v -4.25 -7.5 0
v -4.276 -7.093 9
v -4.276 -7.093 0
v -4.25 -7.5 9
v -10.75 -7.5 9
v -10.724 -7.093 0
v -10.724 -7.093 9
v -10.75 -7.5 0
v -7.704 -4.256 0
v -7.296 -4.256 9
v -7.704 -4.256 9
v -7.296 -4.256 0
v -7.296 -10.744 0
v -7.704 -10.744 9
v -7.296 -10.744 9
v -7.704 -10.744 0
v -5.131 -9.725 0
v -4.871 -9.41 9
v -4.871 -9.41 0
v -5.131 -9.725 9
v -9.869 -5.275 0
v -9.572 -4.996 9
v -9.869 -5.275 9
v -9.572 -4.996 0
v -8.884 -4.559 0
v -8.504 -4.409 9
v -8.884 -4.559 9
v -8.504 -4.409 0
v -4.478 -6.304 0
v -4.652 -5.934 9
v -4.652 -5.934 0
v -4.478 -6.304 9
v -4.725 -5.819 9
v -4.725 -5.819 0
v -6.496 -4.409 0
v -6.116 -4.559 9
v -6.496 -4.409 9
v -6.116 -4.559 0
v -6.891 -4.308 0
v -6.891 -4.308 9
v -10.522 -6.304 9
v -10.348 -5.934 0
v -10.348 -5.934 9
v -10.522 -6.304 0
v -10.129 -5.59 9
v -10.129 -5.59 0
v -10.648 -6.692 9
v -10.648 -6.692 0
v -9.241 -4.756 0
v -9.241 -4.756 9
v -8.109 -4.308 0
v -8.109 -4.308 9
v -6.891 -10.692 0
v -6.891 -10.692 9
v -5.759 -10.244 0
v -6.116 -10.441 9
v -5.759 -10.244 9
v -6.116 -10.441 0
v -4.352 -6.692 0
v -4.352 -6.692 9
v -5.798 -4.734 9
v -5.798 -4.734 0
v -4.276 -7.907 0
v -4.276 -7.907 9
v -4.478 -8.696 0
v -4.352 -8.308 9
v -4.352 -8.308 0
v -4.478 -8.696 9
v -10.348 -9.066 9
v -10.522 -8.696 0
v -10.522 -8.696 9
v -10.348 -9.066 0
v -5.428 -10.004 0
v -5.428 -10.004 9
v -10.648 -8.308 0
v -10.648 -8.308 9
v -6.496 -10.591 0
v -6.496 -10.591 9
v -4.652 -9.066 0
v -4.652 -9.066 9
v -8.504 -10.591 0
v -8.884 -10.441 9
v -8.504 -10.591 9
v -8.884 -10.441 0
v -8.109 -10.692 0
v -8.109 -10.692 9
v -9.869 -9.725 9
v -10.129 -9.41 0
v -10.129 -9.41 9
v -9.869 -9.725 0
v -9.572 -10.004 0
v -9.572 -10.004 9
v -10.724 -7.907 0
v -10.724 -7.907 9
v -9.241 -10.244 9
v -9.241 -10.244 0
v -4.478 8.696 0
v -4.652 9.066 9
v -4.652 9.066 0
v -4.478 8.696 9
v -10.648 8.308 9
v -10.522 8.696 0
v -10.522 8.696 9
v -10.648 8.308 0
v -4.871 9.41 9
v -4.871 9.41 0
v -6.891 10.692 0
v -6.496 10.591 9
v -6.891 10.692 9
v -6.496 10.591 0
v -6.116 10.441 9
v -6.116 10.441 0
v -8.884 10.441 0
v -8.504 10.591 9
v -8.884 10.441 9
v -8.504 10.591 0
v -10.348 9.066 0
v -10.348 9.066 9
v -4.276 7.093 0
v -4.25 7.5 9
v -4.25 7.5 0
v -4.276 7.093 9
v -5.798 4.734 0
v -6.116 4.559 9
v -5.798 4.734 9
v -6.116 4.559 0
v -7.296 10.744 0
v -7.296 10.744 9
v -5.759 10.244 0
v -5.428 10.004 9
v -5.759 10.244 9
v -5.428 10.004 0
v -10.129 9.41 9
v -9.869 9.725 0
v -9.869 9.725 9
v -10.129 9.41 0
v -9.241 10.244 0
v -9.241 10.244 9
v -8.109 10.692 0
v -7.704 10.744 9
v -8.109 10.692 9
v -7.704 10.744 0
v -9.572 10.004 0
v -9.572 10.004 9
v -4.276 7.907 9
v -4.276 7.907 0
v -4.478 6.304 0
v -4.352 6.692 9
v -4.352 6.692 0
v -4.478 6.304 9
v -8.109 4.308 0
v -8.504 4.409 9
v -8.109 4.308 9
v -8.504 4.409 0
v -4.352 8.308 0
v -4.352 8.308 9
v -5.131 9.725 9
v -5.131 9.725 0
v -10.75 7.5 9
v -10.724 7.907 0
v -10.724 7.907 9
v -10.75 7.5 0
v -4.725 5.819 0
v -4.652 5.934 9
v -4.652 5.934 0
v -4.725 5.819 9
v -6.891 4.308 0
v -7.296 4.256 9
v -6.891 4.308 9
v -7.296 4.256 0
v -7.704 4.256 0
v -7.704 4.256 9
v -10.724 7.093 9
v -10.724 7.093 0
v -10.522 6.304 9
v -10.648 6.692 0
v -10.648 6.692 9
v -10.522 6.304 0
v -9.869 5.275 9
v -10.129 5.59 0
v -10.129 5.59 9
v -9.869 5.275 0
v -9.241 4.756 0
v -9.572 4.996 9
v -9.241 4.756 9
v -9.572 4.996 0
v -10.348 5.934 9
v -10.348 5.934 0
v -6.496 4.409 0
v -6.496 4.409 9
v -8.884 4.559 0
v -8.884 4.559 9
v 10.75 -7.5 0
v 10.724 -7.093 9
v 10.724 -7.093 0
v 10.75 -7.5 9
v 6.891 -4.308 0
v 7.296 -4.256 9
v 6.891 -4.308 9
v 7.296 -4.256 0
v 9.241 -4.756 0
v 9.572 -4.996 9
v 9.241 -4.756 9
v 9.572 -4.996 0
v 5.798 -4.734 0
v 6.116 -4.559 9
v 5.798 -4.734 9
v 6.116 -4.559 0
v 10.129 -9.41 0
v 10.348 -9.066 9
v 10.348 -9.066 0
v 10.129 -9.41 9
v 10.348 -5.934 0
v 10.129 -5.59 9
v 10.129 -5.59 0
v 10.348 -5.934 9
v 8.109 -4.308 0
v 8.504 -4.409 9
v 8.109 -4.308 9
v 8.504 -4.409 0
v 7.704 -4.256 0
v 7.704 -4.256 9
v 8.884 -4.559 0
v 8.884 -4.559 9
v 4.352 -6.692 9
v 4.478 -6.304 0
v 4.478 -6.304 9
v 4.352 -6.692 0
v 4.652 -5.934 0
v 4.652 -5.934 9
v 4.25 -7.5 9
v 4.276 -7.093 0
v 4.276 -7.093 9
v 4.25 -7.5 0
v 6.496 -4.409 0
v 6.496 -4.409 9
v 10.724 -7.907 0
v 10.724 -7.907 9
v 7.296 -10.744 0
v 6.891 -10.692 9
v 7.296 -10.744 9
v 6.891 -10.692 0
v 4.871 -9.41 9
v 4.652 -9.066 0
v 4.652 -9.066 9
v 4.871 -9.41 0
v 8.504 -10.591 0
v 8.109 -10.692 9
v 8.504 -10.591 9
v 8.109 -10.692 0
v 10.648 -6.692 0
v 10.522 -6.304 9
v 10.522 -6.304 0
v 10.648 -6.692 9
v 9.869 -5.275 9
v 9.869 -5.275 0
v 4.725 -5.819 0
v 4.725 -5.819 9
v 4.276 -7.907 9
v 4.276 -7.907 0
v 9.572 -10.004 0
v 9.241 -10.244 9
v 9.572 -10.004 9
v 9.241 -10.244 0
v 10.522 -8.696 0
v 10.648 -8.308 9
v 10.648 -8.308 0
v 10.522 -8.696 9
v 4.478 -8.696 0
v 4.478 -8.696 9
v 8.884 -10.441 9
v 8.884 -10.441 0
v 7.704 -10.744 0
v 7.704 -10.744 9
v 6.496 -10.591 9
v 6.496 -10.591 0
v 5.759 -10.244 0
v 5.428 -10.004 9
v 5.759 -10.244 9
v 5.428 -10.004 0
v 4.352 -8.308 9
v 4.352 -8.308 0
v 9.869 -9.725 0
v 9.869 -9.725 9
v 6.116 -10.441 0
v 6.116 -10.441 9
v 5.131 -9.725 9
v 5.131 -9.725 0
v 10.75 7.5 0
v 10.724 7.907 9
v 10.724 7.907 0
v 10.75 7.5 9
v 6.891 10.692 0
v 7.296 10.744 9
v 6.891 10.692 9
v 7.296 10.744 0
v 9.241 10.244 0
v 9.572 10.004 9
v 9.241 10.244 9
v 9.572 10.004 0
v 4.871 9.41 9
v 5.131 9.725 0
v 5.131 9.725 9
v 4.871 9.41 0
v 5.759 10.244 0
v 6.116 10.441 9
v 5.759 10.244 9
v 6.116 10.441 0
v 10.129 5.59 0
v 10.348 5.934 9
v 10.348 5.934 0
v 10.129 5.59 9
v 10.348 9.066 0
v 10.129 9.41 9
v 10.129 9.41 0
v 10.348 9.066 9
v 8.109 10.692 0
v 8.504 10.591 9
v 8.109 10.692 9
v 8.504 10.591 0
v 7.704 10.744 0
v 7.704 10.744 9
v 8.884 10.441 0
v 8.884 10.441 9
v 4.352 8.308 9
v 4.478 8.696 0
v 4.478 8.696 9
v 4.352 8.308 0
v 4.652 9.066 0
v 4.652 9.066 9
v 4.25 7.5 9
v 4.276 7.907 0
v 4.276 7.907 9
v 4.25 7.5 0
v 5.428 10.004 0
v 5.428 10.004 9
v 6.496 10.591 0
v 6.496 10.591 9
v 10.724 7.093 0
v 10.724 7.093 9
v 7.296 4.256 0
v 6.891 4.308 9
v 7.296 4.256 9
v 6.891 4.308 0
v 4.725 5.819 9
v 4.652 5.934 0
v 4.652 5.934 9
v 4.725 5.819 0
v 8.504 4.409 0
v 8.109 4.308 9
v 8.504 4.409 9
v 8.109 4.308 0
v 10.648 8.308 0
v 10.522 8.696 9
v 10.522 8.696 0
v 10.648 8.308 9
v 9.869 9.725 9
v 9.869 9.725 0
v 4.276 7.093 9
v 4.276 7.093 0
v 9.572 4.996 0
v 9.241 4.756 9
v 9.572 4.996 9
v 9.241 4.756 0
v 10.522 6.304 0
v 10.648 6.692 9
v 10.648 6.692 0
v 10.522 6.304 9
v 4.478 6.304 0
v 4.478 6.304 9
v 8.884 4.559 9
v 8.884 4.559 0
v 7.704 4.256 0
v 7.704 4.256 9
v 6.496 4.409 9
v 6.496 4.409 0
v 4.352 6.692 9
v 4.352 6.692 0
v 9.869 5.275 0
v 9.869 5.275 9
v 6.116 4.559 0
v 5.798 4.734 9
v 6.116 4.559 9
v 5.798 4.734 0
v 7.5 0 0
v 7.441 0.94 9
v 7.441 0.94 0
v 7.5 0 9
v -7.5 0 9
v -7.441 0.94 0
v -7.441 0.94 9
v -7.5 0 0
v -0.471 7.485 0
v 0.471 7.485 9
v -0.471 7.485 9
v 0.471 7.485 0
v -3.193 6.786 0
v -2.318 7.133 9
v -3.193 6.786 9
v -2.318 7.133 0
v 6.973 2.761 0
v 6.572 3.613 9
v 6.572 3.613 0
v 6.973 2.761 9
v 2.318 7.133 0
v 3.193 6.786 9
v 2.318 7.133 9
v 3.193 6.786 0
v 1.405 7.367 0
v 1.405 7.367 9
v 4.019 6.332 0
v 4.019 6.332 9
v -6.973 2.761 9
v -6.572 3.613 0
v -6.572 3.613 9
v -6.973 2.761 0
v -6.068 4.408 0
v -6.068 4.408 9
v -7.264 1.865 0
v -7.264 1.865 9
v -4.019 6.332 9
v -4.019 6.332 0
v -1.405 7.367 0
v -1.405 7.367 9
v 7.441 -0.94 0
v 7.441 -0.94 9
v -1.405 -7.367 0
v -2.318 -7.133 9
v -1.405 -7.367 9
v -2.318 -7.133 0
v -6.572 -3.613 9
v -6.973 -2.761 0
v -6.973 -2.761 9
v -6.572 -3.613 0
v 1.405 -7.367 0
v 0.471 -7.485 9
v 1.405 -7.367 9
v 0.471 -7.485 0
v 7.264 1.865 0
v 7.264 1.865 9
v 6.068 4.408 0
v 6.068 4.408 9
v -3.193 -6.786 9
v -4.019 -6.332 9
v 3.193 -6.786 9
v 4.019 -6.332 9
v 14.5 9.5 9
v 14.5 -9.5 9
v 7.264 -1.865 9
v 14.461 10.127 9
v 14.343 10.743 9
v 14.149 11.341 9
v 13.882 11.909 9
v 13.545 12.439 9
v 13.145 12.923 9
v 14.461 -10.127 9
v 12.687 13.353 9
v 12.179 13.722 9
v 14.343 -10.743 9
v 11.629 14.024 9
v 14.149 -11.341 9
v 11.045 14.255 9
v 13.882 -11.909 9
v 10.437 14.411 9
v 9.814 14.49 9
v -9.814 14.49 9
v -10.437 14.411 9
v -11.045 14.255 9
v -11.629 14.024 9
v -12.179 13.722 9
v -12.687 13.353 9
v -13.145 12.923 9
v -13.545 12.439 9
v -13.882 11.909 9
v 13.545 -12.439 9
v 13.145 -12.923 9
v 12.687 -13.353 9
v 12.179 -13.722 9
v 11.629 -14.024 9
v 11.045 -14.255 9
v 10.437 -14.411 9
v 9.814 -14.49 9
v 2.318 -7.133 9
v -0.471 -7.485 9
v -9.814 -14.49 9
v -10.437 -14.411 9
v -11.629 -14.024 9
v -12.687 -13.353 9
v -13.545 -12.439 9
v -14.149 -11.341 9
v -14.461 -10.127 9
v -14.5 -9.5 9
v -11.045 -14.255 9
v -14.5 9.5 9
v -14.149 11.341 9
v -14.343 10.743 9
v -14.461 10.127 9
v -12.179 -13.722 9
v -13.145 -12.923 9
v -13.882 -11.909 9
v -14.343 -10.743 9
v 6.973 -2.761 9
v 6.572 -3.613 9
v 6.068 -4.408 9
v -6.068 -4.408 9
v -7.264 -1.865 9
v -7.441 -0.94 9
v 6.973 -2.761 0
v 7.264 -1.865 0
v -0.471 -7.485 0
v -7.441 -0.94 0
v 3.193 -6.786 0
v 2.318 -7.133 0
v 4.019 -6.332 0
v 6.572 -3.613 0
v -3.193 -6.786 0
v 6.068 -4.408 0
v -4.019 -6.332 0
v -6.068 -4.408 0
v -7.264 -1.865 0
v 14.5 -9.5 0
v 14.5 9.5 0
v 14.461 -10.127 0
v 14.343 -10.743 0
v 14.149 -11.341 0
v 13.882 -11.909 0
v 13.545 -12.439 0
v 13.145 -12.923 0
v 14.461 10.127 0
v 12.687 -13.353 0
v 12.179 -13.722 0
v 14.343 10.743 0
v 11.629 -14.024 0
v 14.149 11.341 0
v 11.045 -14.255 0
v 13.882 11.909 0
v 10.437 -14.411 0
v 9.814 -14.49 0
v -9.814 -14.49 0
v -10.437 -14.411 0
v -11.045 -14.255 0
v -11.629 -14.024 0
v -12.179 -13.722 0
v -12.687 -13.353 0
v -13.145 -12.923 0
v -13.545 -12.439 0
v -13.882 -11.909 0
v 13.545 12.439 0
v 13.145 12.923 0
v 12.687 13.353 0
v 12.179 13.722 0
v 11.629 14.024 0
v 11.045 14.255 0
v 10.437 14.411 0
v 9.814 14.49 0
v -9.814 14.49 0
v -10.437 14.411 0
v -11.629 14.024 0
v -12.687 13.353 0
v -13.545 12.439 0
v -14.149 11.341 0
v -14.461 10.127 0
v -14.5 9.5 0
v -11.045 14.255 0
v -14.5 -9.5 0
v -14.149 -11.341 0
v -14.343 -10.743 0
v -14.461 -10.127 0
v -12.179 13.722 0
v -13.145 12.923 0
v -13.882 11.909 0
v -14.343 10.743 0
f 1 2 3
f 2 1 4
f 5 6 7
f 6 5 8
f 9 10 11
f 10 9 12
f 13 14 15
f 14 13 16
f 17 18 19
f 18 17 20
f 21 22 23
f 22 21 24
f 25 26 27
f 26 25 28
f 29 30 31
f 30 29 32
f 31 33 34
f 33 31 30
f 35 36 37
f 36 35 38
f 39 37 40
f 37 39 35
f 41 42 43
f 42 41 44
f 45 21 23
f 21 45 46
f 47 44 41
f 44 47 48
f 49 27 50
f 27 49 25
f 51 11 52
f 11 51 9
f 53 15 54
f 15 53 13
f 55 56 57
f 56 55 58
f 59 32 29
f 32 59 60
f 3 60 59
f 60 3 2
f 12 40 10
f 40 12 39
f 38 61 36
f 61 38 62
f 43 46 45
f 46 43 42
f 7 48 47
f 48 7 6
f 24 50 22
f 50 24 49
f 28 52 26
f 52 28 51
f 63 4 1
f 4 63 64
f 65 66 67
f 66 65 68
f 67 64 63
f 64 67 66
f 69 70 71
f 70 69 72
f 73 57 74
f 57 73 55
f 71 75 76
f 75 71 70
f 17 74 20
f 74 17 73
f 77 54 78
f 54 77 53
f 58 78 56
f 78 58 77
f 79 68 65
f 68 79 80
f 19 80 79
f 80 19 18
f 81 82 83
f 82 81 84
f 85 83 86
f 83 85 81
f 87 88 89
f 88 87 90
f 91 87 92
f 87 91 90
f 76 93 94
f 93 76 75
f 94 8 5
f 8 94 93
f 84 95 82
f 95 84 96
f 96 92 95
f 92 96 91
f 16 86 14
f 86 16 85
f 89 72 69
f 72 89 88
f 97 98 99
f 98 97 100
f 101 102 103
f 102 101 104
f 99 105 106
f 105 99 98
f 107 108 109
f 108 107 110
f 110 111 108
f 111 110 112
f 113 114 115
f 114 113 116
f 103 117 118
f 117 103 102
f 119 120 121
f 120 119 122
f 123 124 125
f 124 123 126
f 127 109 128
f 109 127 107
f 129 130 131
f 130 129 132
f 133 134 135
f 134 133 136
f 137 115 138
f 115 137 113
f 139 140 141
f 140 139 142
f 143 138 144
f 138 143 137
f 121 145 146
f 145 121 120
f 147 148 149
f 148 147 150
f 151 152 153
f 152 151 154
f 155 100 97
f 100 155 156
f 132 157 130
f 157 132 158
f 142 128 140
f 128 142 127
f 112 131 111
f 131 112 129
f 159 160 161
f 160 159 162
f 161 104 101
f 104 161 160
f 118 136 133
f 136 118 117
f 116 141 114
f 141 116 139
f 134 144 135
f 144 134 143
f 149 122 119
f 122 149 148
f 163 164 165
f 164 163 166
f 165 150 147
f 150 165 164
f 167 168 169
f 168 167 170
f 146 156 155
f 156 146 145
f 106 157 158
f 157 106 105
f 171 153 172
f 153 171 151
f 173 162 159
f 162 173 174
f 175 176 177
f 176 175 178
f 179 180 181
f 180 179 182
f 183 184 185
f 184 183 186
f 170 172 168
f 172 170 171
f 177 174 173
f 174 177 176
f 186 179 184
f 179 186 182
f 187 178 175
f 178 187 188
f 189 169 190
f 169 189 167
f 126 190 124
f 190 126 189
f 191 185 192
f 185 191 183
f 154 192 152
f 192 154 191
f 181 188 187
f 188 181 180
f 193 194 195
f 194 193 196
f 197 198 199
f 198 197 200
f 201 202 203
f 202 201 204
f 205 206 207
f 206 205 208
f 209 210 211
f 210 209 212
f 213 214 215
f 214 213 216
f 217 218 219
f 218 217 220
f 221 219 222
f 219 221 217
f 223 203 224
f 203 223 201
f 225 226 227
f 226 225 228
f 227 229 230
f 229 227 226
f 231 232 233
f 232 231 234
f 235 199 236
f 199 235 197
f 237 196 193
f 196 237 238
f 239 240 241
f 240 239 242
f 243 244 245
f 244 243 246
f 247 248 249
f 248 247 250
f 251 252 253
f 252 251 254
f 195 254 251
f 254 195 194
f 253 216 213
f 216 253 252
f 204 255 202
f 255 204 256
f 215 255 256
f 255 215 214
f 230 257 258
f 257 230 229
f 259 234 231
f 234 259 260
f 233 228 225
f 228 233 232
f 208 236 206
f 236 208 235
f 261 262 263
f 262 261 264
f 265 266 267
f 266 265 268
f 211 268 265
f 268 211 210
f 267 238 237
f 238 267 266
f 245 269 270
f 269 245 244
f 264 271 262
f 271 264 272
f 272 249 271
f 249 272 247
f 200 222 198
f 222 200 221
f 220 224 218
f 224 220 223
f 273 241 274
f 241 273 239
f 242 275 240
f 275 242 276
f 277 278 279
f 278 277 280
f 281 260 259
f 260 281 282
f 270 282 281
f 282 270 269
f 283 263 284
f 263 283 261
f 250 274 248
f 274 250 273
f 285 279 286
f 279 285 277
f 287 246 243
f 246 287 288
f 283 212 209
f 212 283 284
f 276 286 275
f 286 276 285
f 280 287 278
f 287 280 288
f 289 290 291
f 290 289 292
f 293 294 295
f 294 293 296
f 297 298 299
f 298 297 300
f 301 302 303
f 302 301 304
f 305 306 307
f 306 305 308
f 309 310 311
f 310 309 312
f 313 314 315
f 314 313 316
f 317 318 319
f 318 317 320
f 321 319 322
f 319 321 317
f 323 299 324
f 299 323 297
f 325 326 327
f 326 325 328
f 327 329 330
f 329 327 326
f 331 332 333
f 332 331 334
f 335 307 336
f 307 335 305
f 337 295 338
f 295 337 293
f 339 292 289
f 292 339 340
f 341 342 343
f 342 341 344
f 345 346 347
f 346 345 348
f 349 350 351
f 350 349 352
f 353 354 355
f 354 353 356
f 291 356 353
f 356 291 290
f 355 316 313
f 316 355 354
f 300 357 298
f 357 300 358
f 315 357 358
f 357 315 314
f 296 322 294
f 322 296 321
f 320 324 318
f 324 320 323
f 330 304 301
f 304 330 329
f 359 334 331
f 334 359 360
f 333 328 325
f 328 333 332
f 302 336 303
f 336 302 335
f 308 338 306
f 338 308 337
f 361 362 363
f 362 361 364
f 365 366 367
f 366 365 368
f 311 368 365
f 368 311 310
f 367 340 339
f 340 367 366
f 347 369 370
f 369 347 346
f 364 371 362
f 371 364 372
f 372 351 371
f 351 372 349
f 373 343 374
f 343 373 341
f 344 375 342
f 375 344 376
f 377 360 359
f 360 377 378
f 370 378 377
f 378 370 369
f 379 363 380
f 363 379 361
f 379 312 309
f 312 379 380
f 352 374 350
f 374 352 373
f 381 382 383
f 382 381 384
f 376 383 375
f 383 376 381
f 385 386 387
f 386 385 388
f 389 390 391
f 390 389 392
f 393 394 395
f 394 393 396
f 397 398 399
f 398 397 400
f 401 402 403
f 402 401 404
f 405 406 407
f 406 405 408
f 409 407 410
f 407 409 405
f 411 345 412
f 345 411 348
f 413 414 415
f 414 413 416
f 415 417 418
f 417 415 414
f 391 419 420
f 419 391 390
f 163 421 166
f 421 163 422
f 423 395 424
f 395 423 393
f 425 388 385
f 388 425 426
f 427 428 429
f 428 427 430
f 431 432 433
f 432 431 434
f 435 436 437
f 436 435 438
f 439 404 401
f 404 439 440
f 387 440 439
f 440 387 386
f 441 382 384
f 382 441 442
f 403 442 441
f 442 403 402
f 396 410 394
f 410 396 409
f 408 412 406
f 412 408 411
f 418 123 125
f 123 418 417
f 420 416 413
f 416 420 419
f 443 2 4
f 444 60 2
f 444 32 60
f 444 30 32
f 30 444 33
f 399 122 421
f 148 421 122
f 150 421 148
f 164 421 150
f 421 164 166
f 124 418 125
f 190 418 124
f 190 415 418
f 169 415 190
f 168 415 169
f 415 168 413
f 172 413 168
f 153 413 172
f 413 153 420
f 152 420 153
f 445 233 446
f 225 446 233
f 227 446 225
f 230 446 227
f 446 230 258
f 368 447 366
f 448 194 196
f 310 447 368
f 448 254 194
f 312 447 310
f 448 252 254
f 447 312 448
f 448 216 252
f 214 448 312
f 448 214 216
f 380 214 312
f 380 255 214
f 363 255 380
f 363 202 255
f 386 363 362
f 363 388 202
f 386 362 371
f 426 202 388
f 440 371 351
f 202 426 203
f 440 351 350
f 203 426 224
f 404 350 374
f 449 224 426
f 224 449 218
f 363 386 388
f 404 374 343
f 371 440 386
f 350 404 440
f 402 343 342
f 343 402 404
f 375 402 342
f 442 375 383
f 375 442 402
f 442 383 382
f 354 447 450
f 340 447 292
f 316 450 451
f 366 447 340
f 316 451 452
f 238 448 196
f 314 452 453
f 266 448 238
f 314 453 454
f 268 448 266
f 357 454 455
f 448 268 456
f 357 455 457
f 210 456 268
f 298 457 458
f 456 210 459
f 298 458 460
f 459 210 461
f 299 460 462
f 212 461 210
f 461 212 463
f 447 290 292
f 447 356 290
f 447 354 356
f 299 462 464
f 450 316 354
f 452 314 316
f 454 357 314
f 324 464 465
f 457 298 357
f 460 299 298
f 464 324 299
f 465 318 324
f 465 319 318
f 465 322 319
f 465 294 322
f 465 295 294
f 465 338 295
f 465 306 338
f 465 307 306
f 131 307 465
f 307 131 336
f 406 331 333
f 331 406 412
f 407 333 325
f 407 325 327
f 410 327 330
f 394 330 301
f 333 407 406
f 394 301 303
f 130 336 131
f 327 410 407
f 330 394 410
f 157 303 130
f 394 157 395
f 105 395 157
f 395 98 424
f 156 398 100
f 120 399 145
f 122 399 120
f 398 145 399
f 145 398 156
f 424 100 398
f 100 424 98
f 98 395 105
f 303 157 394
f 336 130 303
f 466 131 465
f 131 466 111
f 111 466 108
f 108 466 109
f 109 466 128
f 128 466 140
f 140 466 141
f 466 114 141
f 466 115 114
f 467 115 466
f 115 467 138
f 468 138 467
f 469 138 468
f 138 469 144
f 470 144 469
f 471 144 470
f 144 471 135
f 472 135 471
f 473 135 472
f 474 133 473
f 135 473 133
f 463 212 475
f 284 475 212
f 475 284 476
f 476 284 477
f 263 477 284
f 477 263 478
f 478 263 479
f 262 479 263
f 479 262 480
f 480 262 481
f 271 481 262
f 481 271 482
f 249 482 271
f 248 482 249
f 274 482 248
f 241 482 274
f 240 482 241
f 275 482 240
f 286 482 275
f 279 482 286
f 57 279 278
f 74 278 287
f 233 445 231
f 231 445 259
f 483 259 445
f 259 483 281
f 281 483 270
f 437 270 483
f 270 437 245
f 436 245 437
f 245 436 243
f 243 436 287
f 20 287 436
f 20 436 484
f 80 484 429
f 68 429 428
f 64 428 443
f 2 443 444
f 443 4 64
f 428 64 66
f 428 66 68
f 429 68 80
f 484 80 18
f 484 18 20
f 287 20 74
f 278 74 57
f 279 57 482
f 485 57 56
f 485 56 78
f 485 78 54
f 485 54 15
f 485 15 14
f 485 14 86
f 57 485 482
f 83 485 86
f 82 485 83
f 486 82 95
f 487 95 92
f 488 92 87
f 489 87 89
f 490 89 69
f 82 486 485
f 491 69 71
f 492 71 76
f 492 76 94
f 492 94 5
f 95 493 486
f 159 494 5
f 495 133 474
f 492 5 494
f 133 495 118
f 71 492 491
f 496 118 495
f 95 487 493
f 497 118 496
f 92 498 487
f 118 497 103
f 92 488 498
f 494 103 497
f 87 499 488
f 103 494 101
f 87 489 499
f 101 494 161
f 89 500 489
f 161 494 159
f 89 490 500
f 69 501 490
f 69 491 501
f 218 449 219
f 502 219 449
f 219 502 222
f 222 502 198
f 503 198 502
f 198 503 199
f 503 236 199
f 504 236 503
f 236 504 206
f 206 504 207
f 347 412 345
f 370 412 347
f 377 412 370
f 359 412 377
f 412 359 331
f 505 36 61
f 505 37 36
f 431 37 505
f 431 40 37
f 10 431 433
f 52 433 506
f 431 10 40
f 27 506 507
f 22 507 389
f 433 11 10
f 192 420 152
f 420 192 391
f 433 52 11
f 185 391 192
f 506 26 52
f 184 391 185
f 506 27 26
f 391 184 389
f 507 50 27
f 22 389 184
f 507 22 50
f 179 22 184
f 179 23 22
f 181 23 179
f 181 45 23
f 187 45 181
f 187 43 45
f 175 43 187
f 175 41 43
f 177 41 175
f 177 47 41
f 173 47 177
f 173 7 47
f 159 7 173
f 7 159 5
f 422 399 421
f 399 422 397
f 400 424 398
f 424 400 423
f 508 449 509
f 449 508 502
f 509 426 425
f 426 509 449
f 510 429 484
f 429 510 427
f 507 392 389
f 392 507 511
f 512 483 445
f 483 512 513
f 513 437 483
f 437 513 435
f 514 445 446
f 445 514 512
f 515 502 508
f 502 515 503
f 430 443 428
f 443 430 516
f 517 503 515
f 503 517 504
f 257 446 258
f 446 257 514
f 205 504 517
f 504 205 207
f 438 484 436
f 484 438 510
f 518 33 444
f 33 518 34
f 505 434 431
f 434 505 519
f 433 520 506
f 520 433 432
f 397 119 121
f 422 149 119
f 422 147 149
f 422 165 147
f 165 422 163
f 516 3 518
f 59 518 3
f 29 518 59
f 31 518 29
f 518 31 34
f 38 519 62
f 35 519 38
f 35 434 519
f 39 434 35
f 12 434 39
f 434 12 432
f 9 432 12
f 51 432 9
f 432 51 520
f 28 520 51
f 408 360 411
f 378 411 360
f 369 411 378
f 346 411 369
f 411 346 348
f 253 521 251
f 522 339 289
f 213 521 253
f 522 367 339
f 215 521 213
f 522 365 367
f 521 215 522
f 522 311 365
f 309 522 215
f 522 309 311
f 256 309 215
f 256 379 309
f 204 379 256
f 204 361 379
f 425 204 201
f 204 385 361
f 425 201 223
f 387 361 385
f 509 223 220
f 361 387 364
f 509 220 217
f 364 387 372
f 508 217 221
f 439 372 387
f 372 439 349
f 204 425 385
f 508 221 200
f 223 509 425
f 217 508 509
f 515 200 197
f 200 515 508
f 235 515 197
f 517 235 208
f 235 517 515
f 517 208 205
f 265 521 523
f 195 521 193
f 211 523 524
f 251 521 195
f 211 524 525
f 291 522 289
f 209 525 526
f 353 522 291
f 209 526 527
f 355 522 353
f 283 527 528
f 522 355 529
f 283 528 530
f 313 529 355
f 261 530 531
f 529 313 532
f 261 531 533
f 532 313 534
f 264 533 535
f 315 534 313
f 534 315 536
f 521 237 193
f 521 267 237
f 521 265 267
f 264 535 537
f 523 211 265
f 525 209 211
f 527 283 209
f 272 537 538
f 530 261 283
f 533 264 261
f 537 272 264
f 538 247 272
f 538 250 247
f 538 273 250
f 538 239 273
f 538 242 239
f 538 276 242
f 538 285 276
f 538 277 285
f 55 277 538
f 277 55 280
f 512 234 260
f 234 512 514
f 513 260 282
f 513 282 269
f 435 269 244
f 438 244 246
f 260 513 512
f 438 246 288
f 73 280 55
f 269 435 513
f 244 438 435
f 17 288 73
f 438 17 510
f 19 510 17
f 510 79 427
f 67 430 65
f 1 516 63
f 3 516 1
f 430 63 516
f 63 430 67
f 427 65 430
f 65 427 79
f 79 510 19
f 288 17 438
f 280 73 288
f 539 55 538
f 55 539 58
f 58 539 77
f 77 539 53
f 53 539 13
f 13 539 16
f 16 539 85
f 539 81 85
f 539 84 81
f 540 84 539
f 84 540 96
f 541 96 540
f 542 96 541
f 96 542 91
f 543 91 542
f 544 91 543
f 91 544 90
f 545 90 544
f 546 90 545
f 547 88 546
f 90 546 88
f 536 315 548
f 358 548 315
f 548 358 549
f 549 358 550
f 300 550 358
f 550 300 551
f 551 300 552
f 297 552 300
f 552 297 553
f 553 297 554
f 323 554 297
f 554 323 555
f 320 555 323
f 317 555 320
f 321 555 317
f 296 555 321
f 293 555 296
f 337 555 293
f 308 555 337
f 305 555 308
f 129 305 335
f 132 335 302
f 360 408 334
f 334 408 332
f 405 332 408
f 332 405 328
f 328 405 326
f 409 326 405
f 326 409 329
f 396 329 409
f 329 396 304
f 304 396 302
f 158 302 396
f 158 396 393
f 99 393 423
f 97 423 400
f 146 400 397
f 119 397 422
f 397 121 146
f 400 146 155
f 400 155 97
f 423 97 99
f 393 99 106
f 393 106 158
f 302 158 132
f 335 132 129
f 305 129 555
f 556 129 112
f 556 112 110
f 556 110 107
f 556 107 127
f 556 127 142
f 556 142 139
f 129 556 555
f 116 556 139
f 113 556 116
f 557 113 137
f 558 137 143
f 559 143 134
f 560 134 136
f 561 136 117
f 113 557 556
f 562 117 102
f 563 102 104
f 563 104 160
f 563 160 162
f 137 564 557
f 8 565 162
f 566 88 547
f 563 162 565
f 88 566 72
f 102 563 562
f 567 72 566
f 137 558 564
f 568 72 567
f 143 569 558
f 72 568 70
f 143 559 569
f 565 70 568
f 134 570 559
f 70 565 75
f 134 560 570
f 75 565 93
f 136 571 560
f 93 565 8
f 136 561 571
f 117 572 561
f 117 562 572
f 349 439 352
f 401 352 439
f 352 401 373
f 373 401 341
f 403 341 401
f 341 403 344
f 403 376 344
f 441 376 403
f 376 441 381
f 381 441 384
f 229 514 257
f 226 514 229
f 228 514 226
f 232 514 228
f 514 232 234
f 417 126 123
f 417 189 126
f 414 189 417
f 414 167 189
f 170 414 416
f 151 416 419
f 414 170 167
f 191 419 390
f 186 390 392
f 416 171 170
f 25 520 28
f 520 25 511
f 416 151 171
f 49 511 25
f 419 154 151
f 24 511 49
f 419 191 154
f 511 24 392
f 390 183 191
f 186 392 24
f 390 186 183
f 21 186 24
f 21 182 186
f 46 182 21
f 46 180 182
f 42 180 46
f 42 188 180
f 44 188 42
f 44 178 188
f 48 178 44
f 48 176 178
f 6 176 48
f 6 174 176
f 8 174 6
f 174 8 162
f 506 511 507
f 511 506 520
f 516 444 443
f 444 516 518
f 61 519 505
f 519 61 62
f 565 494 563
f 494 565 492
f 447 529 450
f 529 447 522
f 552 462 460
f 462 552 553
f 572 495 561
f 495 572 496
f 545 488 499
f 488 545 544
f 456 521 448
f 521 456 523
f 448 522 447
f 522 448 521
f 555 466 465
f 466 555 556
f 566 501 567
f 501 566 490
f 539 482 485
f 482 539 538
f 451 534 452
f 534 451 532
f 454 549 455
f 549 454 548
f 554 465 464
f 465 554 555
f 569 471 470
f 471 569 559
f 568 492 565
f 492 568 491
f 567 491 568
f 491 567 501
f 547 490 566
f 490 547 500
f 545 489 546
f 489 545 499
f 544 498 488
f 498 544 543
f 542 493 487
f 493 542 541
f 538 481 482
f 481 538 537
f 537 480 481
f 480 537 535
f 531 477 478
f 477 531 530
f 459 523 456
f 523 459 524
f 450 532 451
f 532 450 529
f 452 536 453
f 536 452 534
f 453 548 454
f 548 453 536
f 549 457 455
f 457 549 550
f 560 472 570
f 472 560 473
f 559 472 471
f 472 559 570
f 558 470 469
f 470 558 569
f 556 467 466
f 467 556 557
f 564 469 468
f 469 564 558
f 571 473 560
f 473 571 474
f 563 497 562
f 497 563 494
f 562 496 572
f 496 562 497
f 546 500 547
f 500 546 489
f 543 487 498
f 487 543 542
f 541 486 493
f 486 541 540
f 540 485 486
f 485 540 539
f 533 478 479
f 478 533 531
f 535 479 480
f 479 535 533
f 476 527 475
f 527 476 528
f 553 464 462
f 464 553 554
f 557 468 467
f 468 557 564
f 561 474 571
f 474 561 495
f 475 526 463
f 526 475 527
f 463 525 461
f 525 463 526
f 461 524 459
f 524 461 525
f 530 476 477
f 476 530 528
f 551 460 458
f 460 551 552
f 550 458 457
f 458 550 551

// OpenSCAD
$fn = 50;


difference() {
	union() {
		hull() {
			translate(v = [-9.5000000000, 9.5000000000, 0]) {
				cylinder(h = 9, r = 5);
			}
			translate(v = [9.5000000000, 9.5000000000, 0]) {
				cylinder(h = 9, r = 5);
			}
			translate(v = [-9.5000000000, -9.5000000000, 0]) {
				cylinder(h = 9, r = 5);
			}
			translate(v = [9.5000000000, -9.5000000000, 0]) {
				cylinder(h = 9, r = 5);
			}
		}
	}
	union() {
		#translate(v = [-7.5000000000, -7.5000000000, -100.0000000000]) {
			cylinder(h = 200, r = 3.2500000000);
		}
		#translate(v = [-7.5000000000, 7.5000000000, -100.0000000000]) {
			cylinder(h = 200, r = 3.2500000000);
		}
		#translate(v = [7.5000000000, -7.5000000000, -100.0000000000]) {
			cylinder(h = 200, r = 3.2500000000);
		}
		#translate(v = [7.5000000000, 7.5000000000, -100.0000000000]) {
			cylinder(h = 200, r = 3.2500000000);
		}
		#cylinder(h = 9, r = 7.5000000000);
	}
}
